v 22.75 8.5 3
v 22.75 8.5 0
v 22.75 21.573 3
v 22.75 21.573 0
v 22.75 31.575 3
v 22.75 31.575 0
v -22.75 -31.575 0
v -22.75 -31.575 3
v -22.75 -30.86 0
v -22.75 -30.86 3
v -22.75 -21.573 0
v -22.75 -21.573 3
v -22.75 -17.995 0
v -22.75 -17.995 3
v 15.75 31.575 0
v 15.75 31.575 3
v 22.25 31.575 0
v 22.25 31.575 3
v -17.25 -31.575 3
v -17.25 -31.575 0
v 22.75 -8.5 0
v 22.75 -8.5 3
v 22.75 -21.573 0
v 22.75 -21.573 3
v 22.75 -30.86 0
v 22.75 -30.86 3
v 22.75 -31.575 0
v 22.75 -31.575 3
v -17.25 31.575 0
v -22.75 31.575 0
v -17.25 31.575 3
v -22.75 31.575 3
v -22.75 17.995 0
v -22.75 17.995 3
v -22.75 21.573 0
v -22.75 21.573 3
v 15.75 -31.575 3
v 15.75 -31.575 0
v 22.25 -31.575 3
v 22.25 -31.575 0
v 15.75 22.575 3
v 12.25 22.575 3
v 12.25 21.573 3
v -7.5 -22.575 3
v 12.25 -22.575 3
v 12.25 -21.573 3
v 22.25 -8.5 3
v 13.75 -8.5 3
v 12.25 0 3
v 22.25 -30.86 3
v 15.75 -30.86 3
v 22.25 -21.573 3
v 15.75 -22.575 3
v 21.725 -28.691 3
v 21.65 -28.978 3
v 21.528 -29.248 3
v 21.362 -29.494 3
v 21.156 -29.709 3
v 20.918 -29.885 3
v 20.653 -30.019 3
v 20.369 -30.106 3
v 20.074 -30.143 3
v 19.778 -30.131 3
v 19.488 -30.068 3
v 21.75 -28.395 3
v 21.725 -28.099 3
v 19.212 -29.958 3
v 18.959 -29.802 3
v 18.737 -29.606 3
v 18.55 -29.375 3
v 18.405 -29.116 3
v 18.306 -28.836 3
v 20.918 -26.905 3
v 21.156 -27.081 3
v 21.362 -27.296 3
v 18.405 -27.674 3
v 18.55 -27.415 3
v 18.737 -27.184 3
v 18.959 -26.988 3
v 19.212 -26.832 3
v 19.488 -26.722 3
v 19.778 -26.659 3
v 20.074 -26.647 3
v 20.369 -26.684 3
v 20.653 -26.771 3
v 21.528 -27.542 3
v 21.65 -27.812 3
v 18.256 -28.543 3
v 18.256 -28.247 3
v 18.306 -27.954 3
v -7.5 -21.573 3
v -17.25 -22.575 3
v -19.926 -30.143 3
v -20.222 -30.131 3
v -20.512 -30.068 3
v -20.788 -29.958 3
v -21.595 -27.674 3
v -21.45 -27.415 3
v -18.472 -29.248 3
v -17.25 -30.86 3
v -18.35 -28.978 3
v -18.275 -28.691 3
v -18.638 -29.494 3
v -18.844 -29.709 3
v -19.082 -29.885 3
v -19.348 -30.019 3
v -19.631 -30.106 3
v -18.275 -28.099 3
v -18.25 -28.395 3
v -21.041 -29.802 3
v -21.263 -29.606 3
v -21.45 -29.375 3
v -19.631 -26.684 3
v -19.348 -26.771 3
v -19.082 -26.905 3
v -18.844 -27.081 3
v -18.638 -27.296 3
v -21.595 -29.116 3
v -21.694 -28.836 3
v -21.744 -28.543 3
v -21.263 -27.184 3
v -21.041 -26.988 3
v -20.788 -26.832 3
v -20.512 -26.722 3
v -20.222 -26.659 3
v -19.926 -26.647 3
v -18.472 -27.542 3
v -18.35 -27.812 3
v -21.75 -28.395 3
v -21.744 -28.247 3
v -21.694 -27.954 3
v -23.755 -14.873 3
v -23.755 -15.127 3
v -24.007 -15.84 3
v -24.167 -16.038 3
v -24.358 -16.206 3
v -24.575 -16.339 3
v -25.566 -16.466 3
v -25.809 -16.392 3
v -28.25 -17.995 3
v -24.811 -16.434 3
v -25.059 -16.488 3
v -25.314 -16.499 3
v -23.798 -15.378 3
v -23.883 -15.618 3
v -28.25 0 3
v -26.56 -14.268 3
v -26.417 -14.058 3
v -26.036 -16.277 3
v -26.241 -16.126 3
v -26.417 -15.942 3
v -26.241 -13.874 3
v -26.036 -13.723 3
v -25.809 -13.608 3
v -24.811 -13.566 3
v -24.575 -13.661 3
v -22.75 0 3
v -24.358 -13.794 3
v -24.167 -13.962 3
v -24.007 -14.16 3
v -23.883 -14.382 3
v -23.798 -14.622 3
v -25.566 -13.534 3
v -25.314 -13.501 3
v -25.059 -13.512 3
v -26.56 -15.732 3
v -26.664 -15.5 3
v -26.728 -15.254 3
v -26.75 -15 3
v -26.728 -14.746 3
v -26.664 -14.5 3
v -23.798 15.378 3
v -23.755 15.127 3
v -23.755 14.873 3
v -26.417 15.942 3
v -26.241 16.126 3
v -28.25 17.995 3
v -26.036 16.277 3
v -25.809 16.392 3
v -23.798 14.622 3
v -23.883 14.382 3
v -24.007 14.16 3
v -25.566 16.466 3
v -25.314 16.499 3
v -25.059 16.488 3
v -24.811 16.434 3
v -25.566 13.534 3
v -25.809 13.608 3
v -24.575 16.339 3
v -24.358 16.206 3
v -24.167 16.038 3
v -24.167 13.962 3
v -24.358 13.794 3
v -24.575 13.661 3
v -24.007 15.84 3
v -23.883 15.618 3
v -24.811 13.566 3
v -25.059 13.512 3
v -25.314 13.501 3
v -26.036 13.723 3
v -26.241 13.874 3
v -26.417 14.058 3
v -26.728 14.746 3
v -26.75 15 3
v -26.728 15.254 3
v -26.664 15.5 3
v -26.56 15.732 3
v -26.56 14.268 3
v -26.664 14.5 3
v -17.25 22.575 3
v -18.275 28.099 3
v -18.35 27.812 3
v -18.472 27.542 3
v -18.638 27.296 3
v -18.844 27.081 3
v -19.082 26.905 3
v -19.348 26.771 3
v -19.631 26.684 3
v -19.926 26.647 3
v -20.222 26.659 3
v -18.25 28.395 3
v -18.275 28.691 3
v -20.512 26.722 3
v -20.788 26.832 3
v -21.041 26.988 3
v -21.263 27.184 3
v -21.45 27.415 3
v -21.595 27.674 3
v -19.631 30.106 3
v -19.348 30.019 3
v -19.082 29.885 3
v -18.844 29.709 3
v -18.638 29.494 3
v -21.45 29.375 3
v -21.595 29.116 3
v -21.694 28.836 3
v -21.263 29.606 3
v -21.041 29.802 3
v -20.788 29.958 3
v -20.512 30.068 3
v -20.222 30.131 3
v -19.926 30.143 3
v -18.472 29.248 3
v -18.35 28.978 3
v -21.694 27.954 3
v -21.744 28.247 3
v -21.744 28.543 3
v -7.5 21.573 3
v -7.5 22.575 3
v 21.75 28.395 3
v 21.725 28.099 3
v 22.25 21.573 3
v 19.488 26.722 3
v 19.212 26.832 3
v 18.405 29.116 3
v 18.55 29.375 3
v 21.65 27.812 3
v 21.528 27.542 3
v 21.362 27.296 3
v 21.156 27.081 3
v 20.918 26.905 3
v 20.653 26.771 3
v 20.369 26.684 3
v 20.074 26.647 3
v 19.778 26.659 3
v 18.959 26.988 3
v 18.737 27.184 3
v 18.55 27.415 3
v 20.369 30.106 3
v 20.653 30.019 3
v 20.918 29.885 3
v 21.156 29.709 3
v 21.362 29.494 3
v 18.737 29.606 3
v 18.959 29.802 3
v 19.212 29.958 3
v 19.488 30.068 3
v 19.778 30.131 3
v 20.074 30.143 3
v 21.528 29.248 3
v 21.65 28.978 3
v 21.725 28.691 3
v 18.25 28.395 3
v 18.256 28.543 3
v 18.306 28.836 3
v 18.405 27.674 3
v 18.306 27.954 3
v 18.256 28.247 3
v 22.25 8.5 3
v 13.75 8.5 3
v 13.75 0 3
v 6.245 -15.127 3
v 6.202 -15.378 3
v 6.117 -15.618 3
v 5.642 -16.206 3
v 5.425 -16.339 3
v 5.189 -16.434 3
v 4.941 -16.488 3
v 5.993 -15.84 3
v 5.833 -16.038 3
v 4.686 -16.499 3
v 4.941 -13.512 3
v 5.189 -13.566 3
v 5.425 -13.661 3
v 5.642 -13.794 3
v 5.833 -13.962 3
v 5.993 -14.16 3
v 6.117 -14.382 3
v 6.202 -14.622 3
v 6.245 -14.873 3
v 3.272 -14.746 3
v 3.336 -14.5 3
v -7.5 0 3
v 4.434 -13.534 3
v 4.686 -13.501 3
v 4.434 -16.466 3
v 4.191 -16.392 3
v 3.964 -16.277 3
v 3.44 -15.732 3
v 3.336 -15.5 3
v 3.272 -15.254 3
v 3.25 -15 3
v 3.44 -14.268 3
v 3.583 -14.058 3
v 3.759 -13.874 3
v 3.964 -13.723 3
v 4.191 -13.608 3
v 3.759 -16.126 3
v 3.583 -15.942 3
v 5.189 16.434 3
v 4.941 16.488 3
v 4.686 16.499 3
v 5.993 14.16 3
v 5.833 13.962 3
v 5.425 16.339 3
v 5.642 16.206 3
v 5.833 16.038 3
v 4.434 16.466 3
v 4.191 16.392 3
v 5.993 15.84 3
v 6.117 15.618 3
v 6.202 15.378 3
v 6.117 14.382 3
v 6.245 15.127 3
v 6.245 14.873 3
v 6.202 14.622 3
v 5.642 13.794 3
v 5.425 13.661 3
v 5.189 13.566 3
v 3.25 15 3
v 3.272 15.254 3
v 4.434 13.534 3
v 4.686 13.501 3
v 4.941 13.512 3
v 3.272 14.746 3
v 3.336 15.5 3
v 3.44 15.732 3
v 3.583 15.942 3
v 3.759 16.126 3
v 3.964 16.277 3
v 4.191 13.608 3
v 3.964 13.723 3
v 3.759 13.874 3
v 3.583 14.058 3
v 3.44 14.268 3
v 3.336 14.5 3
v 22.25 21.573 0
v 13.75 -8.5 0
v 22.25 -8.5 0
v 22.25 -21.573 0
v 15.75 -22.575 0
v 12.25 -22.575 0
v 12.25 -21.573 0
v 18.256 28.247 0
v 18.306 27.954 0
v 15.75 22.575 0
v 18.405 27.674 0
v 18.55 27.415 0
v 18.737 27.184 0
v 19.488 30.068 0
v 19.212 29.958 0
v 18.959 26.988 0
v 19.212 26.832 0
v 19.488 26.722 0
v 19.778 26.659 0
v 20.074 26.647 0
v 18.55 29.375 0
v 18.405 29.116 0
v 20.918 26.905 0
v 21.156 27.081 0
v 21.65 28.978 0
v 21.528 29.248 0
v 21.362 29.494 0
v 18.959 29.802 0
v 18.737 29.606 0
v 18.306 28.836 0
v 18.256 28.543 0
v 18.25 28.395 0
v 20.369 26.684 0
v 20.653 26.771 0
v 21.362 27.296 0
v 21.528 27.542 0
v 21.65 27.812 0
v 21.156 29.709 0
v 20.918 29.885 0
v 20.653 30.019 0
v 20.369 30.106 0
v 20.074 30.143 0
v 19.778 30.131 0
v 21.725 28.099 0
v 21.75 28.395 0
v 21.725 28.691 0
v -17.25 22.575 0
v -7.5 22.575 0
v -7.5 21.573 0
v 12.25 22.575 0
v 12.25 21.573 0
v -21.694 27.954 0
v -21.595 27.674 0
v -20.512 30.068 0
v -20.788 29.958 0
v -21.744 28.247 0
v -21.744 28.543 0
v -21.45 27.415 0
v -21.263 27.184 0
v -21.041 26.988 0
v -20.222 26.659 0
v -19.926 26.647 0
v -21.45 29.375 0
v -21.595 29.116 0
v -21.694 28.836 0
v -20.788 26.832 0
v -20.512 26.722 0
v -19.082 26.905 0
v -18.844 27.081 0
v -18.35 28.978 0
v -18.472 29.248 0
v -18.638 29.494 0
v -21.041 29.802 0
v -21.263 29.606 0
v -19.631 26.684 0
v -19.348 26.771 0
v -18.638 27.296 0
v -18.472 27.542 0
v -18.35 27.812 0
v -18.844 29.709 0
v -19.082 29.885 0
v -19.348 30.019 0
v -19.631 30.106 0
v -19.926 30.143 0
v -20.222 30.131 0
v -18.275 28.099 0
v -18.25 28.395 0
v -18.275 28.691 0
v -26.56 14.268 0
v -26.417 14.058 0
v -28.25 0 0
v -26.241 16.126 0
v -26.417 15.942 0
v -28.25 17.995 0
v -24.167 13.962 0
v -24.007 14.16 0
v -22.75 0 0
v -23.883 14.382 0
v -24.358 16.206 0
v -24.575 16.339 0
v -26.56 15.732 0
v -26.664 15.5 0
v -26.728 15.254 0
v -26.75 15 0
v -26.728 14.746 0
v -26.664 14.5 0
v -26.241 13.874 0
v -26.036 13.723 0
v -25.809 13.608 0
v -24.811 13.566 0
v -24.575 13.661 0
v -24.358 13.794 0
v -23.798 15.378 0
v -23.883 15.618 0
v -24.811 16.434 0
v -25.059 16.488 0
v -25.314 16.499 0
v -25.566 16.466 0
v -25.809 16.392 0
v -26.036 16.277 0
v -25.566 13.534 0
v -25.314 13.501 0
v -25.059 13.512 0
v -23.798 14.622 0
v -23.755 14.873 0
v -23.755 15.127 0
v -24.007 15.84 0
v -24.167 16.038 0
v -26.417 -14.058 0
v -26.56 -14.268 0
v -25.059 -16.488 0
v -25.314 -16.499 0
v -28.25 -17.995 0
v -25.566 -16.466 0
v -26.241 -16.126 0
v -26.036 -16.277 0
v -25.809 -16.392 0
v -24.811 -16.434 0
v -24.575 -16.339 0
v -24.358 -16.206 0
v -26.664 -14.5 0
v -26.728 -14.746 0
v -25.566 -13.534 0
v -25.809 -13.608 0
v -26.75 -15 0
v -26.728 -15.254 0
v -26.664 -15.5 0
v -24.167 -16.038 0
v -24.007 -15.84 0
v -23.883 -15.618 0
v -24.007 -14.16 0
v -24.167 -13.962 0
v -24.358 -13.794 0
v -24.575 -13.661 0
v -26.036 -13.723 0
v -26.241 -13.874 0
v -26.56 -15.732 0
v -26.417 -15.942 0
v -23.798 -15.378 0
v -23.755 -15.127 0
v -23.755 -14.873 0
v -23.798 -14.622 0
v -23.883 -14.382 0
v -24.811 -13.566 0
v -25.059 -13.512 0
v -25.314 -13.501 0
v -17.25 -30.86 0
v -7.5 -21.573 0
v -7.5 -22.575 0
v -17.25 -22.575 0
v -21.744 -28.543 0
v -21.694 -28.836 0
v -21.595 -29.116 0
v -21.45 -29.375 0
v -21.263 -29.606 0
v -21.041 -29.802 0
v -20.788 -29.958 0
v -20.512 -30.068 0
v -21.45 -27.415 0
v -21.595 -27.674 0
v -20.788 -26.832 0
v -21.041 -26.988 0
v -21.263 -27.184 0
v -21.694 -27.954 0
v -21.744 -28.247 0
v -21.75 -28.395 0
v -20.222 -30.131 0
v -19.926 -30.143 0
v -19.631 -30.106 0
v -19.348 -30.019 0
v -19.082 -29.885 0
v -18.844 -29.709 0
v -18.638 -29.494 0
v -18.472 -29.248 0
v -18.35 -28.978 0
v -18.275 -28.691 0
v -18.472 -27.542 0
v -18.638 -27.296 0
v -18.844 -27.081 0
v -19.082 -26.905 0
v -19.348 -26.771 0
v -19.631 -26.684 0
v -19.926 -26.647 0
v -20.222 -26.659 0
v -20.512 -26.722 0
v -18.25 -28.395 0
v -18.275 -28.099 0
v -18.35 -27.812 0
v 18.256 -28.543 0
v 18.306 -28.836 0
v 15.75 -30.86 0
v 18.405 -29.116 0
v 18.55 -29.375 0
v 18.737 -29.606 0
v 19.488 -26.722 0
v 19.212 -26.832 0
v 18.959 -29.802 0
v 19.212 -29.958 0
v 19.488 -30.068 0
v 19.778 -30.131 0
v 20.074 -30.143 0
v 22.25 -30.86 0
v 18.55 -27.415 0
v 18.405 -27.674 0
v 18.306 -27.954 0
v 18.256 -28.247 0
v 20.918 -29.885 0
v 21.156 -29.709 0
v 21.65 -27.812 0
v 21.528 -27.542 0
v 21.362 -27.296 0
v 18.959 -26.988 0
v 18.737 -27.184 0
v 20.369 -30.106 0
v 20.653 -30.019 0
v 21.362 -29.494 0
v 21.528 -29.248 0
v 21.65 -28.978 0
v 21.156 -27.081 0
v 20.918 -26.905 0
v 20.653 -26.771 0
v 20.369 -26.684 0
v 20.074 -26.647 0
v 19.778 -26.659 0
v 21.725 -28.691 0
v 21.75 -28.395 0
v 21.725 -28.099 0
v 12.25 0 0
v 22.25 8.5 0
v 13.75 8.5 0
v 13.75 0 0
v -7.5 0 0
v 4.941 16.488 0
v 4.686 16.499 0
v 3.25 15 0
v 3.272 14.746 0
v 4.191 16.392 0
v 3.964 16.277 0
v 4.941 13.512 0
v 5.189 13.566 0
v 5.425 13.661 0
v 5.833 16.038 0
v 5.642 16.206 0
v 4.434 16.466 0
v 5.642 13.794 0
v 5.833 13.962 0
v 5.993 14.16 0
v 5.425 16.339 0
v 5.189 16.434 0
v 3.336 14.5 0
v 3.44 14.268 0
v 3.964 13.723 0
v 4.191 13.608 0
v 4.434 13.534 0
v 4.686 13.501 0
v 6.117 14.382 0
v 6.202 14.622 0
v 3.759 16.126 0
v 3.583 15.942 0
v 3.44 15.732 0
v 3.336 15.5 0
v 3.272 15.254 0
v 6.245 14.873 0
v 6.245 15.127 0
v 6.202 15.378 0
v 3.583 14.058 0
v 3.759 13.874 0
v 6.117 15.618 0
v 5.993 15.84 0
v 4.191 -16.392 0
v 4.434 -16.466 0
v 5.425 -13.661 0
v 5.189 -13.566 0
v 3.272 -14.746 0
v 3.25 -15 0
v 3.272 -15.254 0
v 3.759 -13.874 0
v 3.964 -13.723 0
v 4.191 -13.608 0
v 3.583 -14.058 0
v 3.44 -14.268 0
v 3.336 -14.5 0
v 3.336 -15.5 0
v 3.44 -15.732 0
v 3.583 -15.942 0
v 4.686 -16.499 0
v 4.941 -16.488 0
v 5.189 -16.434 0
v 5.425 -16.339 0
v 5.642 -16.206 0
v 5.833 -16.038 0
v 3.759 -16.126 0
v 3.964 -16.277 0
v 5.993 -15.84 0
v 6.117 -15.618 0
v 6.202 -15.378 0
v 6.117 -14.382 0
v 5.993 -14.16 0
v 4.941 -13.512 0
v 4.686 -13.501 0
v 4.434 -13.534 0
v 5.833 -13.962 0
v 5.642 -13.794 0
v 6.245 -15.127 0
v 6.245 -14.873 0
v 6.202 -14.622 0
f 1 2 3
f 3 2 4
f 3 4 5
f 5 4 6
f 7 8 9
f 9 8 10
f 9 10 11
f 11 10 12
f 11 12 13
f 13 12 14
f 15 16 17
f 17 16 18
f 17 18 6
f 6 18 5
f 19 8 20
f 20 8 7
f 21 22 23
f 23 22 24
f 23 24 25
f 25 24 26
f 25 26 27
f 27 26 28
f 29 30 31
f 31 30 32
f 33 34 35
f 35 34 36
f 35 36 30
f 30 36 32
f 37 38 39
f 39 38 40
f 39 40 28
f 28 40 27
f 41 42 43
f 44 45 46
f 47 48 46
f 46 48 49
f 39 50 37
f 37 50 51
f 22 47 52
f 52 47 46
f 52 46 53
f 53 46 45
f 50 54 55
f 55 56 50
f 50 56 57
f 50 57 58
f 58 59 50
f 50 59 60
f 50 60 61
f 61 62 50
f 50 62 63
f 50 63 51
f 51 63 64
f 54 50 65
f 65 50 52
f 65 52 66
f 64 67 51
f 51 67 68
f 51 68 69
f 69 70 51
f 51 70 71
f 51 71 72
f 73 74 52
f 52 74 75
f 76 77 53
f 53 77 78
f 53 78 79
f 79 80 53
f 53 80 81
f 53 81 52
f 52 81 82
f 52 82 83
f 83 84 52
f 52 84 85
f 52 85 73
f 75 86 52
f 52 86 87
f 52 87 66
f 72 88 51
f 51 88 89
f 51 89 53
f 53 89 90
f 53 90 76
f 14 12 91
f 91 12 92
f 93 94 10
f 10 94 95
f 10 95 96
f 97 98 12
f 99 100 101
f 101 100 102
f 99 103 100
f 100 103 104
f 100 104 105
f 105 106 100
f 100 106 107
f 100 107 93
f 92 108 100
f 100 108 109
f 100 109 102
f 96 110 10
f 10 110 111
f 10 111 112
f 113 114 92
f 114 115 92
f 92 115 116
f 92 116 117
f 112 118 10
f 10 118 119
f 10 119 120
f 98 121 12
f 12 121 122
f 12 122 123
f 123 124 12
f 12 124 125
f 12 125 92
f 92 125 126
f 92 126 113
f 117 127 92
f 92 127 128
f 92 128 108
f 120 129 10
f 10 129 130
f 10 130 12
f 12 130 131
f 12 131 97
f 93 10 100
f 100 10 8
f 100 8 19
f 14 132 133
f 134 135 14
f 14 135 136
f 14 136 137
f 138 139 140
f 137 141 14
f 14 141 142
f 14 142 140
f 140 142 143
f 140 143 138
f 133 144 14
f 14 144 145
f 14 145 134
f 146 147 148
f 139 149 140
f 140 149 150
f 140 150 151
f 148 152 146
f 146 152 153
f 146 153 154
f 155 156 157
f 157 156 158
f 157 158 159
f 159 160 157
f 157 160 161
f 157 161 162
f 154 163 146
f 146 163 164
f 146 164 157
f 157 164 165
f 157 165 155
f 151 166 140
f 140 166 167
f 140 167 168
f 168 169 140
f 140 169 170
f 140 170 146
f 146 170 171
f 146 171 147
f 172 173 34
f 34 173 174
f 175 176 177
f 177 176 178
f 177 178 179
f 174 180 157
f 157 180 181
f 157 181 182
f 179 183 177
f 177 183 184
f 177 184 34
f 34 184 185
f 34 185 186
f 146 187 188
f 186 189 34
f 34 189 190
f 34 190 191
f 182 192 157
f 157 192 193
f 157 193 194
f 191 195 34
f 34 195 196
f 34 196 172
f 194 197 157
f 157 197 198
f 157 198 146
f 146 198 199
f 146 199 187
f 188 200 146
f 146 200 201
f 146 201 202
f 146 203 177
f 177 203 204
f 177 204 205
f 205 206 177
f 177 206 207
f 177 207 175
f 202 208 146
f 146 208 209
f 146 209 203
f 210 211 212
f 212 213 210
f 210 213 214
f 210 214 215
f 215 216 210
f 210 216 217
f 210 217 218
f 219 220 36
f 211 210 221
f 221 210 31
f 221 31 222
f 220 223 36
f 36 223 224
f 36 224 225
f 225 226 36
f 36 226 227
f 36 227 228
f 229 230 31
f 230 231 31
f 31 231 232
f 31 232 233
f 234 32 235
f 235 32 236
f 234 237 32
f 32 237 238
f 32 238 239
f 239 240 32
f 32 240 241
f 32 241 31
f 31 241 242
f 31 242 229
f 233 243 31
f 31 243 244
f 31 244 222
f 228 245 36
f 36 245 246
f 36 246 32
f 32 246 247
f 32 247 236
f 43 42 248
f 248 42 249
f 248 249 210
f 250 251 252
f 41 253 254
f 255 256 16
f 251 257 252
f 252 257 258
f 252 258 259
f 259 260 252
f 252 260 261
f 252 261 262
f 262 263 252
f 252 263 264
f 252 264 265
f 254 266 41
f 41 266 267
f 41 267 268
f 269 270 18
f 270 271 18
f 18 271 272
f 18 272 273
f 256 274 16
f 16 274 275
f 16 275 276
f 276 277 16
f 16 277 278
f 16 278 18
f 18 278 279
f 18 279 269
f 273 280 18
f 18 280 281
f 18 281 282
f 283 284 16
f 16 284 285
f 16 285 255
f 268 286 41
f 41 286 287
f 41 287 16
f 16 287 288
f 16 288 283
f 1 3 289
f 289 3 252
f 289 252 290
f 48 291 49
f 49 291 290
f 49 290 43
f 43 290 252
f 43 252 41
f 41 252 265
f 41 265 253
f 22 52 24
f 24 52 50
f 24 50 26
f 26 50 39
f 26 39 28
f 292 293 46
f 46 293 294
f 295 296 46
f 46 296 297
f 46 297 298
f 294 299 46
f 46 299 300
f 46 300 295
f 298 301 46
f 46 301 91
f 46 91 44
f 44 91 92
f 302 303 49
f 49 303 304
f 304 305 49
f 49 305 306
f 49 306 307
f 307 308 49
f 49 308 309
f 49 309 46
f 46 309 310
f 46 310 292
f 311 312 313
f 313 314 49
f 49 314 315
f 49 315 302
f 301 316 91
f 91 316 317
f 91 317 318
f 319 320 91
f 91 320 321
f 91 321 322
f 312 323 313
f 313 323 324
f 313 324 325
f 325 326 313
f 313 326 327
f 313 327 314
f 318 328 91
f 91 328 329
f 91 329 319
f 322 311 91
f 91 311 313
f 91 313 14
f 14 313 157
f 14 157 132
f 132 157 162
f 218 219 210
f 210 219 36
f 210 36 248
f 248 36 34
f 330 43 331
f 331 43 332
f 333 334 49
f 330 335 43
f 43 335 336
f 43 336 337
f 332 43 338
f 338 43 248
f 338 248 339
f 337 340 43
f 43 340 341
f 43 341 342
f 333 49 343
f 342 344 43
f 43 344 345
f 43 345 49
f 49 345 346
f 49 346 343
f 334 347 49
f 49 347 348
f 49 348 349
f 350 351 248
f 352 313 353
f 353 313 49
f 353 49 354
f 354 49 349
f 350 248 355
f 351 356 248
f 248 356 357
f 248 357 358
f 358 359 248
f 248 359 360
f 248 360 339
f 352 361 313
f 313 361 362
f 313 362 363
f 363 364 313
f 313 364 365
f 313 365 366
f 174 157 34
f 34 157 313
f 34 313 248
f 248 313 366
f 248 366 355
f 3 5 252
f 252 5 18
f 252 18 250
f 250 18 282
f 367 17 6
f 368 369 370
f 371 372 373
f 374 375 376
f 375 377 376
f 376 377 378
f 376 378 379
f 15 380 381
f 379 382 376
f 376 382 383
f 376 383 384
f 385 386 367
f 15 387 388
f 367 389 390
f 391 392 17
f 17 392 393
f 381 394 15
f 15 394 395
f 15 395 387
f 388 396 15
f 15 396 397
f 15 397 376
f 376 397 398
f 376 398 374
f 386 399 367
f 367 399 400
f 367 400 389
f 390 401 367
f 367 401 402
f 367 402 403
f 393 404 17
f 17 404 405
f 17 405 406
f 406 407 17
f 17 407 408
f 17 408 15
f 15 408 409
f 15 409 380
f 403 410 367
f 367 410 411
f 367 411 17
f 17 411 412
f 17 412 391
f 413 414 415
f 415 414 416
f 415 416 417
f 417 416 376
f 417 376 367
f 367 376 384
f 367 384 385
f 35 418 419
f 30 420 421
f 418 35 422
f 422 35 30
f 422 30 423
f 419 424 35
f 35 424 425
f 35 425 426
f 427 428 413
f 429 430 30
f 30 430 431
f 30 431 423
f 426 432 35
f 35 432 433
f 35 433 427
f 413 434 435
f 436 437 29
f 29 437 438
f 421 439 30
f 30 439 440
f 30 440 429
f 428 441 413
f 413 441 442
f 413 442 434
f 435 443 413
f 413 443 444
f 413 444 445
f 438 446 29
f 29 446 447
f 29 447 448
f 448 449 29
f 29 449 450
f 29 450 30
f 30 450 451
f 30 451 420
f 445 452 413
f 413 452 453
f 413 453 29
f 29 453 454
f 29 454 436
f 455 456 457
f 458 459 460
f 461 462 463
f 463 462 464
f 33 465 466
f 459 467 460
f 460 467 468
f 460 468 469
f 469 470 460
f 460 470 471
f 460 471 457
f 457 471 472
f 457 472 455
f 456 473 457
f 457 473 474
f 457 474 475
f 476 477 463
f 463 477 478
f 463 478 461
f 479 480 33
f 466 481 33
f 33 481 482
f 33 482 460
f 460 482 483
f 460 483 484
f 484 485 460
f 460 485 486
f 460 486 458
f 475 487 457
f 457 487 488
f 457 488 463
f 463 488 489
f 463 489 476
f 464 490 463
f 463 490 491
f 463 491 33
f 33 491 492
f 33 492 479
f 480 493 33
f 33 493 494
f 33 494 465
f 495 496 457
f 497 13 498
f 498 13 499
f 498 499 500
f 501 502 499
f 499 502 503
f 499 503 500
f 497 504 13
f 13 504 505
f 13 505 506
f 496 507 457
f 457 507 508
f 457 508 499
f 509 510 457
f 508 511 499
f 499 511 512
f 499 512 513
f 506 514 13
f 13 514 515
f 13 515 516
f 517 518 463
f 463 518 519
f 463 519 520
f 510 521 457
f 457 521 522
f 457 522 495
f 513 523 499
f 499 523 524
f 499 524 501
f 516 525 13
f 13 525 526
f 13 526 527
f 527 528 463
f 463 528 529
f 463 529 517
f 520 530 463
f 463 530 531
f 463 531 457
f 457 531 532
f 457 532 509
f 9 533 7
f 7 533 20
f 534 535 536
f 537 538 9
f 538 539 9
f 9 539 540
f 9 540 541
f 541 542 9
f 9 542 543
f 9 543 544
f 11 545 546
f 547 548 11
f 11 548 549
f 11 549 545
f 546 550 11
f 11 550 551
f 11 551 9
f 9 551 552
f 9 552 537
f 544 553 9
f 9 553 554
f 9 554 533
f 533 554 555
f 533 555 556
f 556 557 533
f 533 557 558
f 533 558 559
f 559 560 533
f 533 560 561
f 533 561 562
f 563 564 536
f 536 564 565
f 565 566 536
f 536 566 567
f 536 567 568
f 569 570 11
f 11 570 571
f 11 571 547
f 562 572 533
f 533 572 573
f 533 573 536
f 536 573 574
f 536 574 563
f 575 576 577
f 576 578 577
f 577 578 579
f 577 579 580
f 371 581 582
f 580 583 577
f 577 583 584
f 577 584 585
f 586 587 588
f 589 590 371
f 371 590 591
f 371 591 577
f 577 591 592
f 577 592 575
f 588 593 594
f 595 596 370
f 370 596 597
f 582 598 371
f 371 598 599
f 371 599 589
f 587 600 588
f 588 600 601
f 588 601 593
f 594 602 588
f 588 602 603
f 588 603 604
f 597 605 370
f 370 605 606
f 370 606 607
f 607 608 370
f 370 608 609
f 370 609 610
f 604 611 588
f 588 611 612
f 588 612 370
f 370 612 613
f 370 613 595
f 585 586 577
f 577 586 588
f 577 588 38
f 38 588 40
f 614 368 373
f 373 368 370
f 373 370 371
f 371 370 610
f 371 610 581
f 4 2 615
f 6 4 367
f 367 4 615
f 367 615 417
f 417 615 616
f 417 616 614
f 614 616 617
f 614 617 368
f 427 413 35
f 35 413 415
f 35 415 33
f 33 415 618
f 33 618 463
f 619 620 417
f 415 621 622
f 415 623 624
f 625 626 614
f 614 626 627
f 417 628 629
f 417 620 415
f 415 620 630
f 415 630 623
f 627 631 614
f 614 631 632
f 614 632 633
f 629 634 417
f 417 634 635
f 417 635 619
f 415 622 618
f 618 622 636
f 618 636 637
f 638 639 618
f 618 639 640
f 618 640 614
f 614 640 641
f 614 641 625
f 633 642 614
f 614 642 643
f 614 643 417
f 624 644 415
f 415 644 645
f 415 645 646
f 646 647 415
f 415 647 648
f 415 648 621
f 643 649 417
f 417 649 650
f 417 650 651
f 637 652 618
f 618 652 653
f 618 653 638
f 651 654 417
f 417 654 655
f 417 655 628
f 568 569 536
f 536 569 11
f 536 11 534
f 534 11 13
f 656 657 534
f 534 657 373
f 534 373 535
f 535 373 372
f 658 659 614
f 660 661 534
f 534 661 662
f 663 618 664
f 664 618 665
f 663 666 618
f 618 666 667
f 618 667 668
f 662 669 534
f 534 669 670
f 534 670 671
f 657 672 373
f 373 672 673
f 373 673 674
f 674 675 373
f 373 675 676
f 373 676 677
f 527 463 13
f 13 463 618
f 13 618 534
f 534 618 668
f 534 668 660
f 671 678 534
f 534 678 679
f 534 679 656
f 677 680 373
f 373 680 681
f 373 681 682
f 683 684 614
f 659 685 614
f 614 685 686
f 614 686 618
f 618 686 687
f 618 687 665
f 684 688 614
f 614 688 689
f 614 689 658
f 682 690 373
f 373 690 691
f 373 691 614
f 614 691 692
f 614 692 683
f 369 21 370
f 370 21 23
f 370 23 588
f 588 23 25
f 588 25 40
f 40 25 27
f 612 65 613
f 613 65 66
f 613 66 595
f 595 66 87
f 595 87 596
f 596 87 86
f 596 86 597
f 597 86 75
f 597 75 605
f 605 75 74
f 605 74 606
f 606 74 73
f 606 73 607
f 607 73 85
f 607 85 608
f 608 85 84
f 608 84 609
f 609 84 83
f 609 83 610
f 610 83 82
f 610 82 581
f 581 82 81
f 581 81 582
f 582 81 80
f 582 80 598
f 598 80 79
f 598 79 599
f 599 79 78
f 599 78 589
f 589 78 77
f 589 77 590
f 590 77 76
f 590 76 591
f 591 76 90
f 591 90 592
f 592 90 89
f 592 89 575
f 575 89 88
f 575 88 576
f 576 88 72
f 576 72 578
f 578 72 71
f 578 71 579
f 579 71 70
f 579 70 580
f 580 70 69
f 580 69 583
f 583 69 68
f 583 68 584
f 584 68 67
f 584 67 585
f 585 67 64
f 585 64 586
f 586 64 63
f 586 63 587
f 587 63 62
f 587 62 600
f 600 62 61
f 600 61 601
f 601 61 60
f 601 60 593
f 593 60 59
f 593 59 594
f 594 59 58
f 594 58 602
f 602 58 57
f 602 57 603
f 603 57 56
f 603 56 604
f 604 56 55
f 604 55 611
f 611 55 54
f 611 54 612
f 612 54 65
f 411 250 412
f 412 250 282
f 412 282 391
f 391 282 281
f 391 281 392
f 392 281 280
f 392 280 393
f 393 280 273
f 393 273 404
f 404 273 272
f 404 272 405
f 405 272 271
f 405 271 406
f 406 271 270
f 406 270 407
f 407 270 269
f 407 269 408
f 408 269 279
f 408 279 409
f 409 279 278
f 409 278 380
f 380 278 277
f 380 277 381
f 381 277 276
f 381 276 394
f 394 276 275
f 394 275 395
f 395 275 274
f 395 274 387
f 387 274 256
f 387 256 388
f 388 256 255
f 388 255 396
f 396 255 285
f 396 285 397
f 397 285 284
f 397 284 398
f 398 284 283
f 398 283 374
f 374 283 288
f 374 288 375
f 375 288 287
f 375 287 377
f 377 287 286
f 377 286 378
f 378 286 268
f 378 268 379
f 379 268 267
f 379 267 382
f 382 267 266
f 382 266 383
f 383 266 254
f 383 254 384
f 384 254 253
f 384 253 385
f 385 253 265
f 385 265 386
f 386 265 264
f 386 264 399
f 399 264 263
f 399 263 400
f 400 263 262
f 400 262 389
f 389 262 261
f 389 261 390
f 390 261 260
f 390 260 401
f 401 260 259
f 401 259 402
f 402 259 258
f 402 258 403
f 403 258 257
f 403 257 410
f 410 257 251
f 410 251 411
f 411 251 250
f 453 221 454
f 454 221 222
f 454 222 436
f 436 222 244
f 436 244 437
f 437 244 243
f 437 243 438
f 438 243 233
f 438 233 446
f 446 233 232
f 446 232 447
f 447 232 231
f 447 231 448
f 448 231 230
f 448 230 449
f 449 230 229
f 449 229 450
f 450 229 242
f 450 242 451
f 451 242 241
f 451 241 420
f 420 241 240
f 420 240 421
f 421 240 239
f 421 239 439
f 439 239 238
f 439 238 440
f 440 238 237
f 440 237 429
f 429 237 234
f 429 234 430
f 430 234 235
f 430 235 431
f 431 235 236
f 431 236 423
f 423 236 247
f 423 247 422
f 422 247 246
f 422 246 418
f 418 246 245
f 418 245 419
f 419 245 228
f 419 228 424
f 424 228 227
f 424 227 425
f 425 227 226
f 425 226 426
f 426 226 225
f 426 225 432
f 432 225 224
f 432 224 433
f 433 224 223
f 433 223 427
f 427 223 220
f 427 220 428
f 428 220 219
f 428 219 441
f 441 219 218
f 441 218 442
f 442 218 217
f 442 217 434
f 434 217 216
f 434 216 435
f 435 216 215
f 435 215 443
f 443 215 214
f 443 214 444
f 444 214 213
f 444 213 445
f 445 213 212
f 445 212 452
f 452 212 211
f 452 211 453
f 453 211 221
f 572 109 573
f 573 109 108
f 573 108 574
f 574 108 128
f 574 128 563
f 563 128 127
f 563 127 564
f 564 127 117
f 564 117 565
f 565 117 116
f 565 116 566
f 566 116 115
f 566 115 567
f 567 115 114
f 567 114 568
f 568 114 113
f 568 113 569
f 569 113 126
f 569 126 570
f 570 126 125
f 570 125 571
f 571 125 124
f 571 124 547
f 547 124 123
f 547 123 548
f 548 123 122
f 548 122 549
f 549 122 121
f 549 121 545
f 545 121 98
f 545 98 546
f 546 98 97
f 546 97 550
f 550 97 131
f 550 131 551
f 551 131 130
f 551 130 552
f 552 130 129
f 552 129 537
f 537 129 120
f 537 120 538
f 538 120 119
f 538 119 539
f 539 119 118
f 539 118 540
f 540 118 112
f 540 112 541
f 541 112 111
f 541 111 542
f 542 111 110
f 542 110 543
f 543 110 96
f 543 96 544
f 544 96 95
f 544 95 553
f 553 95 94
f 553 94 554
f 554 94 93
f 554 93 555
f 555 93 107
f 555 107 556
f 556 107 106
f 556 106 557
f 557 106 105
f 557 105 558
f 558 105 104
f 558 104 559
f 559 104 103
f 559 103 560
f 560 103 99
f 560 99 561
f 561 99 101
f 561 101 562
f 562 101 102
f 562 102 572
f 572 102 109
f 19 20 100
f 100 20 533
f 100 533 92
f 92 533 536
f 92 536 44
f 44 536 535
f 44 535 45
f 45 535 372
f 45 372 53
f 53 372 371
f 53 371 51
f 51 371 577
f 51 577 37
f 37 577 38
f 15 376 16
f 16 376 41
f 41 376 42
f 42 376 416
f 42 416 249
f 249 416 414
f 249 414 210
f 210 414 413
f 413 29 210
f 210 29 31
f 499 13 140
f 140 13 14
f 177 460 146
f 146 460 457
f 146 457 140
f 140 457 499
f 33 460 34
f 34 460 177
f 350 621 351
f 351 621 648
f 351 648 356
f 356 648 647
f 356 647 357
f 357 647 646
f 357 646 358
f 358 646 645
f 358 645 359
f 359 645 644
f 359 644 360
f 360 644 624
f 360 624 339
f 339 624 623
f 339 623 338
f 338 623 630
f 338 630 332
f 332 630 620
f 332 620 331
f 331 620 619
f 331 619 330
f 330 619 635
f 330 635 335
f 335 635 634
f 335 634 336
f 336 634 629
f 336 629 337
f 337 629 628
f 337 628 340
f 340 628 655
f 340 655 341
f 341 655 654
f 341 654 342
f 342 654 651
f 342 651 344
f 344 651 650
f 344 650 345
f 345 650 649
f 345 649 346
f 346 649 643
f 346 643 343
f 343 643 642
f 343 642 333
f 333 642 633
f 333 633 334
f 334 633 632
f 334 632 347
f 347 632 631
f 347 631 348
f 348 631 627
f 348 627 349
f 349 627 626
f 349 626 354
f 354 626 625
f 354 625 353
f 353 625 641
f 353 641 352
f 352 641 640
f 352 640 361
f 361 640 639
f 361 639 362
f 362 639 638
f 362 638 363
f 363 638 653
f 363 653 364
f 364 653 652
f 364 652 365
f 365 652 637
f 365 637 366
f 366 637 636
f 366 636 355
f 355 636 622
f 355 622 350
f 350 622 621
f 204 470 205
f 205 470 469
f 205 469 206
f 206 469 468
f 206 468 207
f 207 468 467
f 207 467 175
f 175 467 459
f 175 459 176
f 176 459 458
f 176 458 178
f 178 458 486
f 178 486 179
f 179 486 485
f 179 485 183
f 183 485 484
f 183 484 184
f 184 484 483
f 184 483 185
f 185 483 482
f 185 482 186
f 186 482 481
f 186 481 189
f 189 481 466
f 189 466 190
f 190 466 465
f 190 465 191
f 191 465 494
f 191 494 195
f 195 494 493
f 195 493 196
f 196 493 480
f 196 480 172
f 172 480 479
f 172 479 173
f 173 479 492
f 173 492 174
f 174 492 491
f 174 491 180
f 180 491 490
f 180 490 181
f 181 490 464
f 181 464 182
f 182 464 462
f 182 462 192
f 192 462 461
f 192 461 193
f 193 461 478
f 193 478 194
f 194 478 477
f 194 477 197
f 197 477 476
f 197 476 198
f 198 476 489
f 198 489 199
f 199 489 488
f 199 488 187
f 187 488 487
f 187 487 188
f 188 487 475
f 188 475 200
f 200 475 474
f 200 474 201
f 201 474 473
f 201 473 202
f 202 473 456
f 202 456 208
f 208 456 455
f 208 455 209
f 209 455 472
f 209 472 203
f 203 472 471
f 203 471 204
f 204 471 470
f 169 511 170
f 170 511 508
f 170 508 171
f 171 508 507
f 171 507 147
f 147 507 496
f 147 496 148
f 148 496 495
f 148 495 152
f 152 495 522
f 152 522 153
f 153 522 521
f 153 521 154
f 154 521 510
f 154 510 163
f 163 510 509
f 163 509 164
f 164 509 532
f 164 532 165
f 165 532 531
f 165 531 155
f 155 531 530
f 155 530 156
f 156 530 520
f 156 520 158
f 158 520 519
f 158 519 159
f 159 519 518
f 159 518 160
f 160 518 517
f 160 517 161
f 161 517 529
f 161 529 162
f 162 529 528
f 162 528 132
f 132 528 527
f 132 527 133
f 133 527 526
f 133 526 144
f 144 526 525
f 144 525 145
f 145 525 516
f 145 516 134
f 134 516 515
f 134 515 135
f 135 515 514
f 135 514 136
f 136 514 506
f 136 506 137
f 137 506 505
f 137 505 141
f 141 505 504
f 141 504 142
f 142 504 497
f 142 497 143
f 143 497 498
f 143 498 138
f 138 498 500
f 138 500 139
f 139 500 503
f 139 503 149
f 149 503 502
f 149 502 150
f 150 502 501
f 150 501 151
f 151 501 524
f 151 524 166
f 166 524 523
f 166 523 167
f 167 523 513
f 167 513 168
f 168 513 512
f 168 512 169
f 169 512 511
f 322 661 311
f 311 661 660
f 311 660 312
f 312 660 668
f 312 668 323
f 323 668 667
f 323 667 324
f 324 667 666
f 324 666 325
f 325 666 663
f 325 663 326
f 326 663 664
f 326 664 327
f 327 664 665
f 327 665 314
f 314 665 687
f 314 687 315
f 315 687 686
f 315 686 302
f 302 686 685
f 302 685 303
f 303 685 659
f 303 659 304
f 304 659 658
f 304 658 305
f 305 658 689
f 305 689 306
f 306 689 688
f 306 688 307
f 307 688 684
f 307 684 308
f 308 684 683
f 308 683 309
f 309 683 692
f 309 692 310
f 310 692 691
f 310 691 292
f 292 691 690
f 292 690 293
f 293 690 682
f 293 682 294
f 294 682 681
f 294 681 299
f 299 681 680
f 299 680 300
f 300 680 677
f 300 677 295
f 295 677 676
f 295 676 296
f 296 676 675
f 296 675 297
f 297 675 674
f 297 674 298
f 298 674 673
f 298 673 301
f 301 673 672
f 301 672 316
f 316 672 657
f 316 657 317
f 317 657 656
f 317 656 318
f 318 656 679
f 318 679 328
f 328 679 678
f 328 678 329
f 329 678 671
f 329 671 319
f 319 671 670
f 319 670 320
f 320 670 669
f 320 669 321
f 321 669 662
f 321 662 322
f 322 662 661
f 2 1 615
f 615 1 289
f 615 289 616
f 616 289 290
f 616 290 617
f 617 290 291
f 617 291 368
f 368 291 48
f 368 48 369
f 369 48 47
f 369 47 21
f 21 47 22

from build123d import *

# Parameters (mm, degrees)
SKETCH1_W           = 45.5
SKETCH1_H           = 63.15
BOSS_EXTRUDE1_DEPTH = 3
SKETCH2_R           = 1.75
CUT_EXTRUDE1_DEPTH  = 3
SKETCH3_W           = 33
SKETCH3_H           = 9
CUT_EXTRUDE2_DEPTH  = 3
SKETCH4_W           = 5.5
SKETCH4_H           = 35.99
BOSS_EXTRUDE2_DEPTH = 3
SKETCH5_R           = 1.5
CUT_EXTRUDE3_DEPTH  = 3
CUT_EXTRUDE4_DEPTH  = 10


with BuildPart() as part:
    # Sketch1 → Boss-Extrude1 (new body)
    with BuildSketch(Plane.XY):
        Rectangle(SKETCH1_W, SKETCH1_H)
    extrude(amount=BOSS_EXTRUDE1_DEPTH)

    # Sketch2 → Cut-Extrude1 (cut)
    with BuildSketch(Plane.XY.offset(3)):
        with Locations((20, -28.395)):
            Circle(SKETCH2_R)
        with Locations(Location((20, 28.395, 0), (0, 0, 180))):
            Circle(SKETCH2_R)
        with Locations((-20, 28.395)):
            Circle(SKETCH2_R)
        with Locations(Location((-20, -28.395, 0), (0, 0, 180))):
            Circle(SKETCH2_R)
    extrude(amount=-CUT_EXTRUDE1_DEPTH, mode=Mode.SUBTRACT)

    # Sketch3 → Cut-Extrude2 (cut)
    with BuildSketch(Plane.XY.offset(3)):
        with Locations((-0.75, 27.075)):
            Rectangle(SKETCH3_W, SKETCH3_H)
        with Locations((-0.75, -27.075)):
            Rectangle(SKETCH3_W, SKETCH3_H)
    extrude(amount=-CUT_EXTRUDE2_DEPTH, mode=Mode.SUBTRACT)

    # Sketch4 → Boss-Extrude2 (add)
    with BuildSketch(Plane.XY.offset(3)):
        with Locations((-25.5, 0)):
            Rectangle(SKETCH4_W, SKETCH4_H)
    extrude(amount=-BOSS_EXTRUDE2_DEPTH)

    # Sketch5 → Cut-Extrude3 (cut)
    with BuildSketch(Plane(origin=(0, 0, 0), x_dir=(-1, 0, 0), z_dir=(0, 0, -1))):
        with Locations((-4.75, 15)):
            Circle(SKETCH5_R)
        with Locations((25.25, 15)):
            Circle(SKETCH5_R)
        with Locations((25.25, -15)):
            Circle(SKETCH5_R)
        with Locations((-4.75, -15)):
            Circle(SKETCH5_R)
    extrude(amount=-CUT_EXTRUDE3_DEPTH, mode=Mode.SUBTRACT)

    # Sketch6 → Cut-Extrude4 (cut)
    with BuildSketch(Plane(origin=(0, 0, 0), x_dir=(-1, 0, 0), z_dir=(0, 0, -1))):
        Polygon((-22.75, 0), (-22.75, -8.5), (-13.75, -8.5), (-13.75, 8.5), (-22.75, 8.5), align=None)
    extrude(amount=-CUT_EXTRUDE4_DEPTH, mode=Mode.SUBTRACT)


solid = part.part
